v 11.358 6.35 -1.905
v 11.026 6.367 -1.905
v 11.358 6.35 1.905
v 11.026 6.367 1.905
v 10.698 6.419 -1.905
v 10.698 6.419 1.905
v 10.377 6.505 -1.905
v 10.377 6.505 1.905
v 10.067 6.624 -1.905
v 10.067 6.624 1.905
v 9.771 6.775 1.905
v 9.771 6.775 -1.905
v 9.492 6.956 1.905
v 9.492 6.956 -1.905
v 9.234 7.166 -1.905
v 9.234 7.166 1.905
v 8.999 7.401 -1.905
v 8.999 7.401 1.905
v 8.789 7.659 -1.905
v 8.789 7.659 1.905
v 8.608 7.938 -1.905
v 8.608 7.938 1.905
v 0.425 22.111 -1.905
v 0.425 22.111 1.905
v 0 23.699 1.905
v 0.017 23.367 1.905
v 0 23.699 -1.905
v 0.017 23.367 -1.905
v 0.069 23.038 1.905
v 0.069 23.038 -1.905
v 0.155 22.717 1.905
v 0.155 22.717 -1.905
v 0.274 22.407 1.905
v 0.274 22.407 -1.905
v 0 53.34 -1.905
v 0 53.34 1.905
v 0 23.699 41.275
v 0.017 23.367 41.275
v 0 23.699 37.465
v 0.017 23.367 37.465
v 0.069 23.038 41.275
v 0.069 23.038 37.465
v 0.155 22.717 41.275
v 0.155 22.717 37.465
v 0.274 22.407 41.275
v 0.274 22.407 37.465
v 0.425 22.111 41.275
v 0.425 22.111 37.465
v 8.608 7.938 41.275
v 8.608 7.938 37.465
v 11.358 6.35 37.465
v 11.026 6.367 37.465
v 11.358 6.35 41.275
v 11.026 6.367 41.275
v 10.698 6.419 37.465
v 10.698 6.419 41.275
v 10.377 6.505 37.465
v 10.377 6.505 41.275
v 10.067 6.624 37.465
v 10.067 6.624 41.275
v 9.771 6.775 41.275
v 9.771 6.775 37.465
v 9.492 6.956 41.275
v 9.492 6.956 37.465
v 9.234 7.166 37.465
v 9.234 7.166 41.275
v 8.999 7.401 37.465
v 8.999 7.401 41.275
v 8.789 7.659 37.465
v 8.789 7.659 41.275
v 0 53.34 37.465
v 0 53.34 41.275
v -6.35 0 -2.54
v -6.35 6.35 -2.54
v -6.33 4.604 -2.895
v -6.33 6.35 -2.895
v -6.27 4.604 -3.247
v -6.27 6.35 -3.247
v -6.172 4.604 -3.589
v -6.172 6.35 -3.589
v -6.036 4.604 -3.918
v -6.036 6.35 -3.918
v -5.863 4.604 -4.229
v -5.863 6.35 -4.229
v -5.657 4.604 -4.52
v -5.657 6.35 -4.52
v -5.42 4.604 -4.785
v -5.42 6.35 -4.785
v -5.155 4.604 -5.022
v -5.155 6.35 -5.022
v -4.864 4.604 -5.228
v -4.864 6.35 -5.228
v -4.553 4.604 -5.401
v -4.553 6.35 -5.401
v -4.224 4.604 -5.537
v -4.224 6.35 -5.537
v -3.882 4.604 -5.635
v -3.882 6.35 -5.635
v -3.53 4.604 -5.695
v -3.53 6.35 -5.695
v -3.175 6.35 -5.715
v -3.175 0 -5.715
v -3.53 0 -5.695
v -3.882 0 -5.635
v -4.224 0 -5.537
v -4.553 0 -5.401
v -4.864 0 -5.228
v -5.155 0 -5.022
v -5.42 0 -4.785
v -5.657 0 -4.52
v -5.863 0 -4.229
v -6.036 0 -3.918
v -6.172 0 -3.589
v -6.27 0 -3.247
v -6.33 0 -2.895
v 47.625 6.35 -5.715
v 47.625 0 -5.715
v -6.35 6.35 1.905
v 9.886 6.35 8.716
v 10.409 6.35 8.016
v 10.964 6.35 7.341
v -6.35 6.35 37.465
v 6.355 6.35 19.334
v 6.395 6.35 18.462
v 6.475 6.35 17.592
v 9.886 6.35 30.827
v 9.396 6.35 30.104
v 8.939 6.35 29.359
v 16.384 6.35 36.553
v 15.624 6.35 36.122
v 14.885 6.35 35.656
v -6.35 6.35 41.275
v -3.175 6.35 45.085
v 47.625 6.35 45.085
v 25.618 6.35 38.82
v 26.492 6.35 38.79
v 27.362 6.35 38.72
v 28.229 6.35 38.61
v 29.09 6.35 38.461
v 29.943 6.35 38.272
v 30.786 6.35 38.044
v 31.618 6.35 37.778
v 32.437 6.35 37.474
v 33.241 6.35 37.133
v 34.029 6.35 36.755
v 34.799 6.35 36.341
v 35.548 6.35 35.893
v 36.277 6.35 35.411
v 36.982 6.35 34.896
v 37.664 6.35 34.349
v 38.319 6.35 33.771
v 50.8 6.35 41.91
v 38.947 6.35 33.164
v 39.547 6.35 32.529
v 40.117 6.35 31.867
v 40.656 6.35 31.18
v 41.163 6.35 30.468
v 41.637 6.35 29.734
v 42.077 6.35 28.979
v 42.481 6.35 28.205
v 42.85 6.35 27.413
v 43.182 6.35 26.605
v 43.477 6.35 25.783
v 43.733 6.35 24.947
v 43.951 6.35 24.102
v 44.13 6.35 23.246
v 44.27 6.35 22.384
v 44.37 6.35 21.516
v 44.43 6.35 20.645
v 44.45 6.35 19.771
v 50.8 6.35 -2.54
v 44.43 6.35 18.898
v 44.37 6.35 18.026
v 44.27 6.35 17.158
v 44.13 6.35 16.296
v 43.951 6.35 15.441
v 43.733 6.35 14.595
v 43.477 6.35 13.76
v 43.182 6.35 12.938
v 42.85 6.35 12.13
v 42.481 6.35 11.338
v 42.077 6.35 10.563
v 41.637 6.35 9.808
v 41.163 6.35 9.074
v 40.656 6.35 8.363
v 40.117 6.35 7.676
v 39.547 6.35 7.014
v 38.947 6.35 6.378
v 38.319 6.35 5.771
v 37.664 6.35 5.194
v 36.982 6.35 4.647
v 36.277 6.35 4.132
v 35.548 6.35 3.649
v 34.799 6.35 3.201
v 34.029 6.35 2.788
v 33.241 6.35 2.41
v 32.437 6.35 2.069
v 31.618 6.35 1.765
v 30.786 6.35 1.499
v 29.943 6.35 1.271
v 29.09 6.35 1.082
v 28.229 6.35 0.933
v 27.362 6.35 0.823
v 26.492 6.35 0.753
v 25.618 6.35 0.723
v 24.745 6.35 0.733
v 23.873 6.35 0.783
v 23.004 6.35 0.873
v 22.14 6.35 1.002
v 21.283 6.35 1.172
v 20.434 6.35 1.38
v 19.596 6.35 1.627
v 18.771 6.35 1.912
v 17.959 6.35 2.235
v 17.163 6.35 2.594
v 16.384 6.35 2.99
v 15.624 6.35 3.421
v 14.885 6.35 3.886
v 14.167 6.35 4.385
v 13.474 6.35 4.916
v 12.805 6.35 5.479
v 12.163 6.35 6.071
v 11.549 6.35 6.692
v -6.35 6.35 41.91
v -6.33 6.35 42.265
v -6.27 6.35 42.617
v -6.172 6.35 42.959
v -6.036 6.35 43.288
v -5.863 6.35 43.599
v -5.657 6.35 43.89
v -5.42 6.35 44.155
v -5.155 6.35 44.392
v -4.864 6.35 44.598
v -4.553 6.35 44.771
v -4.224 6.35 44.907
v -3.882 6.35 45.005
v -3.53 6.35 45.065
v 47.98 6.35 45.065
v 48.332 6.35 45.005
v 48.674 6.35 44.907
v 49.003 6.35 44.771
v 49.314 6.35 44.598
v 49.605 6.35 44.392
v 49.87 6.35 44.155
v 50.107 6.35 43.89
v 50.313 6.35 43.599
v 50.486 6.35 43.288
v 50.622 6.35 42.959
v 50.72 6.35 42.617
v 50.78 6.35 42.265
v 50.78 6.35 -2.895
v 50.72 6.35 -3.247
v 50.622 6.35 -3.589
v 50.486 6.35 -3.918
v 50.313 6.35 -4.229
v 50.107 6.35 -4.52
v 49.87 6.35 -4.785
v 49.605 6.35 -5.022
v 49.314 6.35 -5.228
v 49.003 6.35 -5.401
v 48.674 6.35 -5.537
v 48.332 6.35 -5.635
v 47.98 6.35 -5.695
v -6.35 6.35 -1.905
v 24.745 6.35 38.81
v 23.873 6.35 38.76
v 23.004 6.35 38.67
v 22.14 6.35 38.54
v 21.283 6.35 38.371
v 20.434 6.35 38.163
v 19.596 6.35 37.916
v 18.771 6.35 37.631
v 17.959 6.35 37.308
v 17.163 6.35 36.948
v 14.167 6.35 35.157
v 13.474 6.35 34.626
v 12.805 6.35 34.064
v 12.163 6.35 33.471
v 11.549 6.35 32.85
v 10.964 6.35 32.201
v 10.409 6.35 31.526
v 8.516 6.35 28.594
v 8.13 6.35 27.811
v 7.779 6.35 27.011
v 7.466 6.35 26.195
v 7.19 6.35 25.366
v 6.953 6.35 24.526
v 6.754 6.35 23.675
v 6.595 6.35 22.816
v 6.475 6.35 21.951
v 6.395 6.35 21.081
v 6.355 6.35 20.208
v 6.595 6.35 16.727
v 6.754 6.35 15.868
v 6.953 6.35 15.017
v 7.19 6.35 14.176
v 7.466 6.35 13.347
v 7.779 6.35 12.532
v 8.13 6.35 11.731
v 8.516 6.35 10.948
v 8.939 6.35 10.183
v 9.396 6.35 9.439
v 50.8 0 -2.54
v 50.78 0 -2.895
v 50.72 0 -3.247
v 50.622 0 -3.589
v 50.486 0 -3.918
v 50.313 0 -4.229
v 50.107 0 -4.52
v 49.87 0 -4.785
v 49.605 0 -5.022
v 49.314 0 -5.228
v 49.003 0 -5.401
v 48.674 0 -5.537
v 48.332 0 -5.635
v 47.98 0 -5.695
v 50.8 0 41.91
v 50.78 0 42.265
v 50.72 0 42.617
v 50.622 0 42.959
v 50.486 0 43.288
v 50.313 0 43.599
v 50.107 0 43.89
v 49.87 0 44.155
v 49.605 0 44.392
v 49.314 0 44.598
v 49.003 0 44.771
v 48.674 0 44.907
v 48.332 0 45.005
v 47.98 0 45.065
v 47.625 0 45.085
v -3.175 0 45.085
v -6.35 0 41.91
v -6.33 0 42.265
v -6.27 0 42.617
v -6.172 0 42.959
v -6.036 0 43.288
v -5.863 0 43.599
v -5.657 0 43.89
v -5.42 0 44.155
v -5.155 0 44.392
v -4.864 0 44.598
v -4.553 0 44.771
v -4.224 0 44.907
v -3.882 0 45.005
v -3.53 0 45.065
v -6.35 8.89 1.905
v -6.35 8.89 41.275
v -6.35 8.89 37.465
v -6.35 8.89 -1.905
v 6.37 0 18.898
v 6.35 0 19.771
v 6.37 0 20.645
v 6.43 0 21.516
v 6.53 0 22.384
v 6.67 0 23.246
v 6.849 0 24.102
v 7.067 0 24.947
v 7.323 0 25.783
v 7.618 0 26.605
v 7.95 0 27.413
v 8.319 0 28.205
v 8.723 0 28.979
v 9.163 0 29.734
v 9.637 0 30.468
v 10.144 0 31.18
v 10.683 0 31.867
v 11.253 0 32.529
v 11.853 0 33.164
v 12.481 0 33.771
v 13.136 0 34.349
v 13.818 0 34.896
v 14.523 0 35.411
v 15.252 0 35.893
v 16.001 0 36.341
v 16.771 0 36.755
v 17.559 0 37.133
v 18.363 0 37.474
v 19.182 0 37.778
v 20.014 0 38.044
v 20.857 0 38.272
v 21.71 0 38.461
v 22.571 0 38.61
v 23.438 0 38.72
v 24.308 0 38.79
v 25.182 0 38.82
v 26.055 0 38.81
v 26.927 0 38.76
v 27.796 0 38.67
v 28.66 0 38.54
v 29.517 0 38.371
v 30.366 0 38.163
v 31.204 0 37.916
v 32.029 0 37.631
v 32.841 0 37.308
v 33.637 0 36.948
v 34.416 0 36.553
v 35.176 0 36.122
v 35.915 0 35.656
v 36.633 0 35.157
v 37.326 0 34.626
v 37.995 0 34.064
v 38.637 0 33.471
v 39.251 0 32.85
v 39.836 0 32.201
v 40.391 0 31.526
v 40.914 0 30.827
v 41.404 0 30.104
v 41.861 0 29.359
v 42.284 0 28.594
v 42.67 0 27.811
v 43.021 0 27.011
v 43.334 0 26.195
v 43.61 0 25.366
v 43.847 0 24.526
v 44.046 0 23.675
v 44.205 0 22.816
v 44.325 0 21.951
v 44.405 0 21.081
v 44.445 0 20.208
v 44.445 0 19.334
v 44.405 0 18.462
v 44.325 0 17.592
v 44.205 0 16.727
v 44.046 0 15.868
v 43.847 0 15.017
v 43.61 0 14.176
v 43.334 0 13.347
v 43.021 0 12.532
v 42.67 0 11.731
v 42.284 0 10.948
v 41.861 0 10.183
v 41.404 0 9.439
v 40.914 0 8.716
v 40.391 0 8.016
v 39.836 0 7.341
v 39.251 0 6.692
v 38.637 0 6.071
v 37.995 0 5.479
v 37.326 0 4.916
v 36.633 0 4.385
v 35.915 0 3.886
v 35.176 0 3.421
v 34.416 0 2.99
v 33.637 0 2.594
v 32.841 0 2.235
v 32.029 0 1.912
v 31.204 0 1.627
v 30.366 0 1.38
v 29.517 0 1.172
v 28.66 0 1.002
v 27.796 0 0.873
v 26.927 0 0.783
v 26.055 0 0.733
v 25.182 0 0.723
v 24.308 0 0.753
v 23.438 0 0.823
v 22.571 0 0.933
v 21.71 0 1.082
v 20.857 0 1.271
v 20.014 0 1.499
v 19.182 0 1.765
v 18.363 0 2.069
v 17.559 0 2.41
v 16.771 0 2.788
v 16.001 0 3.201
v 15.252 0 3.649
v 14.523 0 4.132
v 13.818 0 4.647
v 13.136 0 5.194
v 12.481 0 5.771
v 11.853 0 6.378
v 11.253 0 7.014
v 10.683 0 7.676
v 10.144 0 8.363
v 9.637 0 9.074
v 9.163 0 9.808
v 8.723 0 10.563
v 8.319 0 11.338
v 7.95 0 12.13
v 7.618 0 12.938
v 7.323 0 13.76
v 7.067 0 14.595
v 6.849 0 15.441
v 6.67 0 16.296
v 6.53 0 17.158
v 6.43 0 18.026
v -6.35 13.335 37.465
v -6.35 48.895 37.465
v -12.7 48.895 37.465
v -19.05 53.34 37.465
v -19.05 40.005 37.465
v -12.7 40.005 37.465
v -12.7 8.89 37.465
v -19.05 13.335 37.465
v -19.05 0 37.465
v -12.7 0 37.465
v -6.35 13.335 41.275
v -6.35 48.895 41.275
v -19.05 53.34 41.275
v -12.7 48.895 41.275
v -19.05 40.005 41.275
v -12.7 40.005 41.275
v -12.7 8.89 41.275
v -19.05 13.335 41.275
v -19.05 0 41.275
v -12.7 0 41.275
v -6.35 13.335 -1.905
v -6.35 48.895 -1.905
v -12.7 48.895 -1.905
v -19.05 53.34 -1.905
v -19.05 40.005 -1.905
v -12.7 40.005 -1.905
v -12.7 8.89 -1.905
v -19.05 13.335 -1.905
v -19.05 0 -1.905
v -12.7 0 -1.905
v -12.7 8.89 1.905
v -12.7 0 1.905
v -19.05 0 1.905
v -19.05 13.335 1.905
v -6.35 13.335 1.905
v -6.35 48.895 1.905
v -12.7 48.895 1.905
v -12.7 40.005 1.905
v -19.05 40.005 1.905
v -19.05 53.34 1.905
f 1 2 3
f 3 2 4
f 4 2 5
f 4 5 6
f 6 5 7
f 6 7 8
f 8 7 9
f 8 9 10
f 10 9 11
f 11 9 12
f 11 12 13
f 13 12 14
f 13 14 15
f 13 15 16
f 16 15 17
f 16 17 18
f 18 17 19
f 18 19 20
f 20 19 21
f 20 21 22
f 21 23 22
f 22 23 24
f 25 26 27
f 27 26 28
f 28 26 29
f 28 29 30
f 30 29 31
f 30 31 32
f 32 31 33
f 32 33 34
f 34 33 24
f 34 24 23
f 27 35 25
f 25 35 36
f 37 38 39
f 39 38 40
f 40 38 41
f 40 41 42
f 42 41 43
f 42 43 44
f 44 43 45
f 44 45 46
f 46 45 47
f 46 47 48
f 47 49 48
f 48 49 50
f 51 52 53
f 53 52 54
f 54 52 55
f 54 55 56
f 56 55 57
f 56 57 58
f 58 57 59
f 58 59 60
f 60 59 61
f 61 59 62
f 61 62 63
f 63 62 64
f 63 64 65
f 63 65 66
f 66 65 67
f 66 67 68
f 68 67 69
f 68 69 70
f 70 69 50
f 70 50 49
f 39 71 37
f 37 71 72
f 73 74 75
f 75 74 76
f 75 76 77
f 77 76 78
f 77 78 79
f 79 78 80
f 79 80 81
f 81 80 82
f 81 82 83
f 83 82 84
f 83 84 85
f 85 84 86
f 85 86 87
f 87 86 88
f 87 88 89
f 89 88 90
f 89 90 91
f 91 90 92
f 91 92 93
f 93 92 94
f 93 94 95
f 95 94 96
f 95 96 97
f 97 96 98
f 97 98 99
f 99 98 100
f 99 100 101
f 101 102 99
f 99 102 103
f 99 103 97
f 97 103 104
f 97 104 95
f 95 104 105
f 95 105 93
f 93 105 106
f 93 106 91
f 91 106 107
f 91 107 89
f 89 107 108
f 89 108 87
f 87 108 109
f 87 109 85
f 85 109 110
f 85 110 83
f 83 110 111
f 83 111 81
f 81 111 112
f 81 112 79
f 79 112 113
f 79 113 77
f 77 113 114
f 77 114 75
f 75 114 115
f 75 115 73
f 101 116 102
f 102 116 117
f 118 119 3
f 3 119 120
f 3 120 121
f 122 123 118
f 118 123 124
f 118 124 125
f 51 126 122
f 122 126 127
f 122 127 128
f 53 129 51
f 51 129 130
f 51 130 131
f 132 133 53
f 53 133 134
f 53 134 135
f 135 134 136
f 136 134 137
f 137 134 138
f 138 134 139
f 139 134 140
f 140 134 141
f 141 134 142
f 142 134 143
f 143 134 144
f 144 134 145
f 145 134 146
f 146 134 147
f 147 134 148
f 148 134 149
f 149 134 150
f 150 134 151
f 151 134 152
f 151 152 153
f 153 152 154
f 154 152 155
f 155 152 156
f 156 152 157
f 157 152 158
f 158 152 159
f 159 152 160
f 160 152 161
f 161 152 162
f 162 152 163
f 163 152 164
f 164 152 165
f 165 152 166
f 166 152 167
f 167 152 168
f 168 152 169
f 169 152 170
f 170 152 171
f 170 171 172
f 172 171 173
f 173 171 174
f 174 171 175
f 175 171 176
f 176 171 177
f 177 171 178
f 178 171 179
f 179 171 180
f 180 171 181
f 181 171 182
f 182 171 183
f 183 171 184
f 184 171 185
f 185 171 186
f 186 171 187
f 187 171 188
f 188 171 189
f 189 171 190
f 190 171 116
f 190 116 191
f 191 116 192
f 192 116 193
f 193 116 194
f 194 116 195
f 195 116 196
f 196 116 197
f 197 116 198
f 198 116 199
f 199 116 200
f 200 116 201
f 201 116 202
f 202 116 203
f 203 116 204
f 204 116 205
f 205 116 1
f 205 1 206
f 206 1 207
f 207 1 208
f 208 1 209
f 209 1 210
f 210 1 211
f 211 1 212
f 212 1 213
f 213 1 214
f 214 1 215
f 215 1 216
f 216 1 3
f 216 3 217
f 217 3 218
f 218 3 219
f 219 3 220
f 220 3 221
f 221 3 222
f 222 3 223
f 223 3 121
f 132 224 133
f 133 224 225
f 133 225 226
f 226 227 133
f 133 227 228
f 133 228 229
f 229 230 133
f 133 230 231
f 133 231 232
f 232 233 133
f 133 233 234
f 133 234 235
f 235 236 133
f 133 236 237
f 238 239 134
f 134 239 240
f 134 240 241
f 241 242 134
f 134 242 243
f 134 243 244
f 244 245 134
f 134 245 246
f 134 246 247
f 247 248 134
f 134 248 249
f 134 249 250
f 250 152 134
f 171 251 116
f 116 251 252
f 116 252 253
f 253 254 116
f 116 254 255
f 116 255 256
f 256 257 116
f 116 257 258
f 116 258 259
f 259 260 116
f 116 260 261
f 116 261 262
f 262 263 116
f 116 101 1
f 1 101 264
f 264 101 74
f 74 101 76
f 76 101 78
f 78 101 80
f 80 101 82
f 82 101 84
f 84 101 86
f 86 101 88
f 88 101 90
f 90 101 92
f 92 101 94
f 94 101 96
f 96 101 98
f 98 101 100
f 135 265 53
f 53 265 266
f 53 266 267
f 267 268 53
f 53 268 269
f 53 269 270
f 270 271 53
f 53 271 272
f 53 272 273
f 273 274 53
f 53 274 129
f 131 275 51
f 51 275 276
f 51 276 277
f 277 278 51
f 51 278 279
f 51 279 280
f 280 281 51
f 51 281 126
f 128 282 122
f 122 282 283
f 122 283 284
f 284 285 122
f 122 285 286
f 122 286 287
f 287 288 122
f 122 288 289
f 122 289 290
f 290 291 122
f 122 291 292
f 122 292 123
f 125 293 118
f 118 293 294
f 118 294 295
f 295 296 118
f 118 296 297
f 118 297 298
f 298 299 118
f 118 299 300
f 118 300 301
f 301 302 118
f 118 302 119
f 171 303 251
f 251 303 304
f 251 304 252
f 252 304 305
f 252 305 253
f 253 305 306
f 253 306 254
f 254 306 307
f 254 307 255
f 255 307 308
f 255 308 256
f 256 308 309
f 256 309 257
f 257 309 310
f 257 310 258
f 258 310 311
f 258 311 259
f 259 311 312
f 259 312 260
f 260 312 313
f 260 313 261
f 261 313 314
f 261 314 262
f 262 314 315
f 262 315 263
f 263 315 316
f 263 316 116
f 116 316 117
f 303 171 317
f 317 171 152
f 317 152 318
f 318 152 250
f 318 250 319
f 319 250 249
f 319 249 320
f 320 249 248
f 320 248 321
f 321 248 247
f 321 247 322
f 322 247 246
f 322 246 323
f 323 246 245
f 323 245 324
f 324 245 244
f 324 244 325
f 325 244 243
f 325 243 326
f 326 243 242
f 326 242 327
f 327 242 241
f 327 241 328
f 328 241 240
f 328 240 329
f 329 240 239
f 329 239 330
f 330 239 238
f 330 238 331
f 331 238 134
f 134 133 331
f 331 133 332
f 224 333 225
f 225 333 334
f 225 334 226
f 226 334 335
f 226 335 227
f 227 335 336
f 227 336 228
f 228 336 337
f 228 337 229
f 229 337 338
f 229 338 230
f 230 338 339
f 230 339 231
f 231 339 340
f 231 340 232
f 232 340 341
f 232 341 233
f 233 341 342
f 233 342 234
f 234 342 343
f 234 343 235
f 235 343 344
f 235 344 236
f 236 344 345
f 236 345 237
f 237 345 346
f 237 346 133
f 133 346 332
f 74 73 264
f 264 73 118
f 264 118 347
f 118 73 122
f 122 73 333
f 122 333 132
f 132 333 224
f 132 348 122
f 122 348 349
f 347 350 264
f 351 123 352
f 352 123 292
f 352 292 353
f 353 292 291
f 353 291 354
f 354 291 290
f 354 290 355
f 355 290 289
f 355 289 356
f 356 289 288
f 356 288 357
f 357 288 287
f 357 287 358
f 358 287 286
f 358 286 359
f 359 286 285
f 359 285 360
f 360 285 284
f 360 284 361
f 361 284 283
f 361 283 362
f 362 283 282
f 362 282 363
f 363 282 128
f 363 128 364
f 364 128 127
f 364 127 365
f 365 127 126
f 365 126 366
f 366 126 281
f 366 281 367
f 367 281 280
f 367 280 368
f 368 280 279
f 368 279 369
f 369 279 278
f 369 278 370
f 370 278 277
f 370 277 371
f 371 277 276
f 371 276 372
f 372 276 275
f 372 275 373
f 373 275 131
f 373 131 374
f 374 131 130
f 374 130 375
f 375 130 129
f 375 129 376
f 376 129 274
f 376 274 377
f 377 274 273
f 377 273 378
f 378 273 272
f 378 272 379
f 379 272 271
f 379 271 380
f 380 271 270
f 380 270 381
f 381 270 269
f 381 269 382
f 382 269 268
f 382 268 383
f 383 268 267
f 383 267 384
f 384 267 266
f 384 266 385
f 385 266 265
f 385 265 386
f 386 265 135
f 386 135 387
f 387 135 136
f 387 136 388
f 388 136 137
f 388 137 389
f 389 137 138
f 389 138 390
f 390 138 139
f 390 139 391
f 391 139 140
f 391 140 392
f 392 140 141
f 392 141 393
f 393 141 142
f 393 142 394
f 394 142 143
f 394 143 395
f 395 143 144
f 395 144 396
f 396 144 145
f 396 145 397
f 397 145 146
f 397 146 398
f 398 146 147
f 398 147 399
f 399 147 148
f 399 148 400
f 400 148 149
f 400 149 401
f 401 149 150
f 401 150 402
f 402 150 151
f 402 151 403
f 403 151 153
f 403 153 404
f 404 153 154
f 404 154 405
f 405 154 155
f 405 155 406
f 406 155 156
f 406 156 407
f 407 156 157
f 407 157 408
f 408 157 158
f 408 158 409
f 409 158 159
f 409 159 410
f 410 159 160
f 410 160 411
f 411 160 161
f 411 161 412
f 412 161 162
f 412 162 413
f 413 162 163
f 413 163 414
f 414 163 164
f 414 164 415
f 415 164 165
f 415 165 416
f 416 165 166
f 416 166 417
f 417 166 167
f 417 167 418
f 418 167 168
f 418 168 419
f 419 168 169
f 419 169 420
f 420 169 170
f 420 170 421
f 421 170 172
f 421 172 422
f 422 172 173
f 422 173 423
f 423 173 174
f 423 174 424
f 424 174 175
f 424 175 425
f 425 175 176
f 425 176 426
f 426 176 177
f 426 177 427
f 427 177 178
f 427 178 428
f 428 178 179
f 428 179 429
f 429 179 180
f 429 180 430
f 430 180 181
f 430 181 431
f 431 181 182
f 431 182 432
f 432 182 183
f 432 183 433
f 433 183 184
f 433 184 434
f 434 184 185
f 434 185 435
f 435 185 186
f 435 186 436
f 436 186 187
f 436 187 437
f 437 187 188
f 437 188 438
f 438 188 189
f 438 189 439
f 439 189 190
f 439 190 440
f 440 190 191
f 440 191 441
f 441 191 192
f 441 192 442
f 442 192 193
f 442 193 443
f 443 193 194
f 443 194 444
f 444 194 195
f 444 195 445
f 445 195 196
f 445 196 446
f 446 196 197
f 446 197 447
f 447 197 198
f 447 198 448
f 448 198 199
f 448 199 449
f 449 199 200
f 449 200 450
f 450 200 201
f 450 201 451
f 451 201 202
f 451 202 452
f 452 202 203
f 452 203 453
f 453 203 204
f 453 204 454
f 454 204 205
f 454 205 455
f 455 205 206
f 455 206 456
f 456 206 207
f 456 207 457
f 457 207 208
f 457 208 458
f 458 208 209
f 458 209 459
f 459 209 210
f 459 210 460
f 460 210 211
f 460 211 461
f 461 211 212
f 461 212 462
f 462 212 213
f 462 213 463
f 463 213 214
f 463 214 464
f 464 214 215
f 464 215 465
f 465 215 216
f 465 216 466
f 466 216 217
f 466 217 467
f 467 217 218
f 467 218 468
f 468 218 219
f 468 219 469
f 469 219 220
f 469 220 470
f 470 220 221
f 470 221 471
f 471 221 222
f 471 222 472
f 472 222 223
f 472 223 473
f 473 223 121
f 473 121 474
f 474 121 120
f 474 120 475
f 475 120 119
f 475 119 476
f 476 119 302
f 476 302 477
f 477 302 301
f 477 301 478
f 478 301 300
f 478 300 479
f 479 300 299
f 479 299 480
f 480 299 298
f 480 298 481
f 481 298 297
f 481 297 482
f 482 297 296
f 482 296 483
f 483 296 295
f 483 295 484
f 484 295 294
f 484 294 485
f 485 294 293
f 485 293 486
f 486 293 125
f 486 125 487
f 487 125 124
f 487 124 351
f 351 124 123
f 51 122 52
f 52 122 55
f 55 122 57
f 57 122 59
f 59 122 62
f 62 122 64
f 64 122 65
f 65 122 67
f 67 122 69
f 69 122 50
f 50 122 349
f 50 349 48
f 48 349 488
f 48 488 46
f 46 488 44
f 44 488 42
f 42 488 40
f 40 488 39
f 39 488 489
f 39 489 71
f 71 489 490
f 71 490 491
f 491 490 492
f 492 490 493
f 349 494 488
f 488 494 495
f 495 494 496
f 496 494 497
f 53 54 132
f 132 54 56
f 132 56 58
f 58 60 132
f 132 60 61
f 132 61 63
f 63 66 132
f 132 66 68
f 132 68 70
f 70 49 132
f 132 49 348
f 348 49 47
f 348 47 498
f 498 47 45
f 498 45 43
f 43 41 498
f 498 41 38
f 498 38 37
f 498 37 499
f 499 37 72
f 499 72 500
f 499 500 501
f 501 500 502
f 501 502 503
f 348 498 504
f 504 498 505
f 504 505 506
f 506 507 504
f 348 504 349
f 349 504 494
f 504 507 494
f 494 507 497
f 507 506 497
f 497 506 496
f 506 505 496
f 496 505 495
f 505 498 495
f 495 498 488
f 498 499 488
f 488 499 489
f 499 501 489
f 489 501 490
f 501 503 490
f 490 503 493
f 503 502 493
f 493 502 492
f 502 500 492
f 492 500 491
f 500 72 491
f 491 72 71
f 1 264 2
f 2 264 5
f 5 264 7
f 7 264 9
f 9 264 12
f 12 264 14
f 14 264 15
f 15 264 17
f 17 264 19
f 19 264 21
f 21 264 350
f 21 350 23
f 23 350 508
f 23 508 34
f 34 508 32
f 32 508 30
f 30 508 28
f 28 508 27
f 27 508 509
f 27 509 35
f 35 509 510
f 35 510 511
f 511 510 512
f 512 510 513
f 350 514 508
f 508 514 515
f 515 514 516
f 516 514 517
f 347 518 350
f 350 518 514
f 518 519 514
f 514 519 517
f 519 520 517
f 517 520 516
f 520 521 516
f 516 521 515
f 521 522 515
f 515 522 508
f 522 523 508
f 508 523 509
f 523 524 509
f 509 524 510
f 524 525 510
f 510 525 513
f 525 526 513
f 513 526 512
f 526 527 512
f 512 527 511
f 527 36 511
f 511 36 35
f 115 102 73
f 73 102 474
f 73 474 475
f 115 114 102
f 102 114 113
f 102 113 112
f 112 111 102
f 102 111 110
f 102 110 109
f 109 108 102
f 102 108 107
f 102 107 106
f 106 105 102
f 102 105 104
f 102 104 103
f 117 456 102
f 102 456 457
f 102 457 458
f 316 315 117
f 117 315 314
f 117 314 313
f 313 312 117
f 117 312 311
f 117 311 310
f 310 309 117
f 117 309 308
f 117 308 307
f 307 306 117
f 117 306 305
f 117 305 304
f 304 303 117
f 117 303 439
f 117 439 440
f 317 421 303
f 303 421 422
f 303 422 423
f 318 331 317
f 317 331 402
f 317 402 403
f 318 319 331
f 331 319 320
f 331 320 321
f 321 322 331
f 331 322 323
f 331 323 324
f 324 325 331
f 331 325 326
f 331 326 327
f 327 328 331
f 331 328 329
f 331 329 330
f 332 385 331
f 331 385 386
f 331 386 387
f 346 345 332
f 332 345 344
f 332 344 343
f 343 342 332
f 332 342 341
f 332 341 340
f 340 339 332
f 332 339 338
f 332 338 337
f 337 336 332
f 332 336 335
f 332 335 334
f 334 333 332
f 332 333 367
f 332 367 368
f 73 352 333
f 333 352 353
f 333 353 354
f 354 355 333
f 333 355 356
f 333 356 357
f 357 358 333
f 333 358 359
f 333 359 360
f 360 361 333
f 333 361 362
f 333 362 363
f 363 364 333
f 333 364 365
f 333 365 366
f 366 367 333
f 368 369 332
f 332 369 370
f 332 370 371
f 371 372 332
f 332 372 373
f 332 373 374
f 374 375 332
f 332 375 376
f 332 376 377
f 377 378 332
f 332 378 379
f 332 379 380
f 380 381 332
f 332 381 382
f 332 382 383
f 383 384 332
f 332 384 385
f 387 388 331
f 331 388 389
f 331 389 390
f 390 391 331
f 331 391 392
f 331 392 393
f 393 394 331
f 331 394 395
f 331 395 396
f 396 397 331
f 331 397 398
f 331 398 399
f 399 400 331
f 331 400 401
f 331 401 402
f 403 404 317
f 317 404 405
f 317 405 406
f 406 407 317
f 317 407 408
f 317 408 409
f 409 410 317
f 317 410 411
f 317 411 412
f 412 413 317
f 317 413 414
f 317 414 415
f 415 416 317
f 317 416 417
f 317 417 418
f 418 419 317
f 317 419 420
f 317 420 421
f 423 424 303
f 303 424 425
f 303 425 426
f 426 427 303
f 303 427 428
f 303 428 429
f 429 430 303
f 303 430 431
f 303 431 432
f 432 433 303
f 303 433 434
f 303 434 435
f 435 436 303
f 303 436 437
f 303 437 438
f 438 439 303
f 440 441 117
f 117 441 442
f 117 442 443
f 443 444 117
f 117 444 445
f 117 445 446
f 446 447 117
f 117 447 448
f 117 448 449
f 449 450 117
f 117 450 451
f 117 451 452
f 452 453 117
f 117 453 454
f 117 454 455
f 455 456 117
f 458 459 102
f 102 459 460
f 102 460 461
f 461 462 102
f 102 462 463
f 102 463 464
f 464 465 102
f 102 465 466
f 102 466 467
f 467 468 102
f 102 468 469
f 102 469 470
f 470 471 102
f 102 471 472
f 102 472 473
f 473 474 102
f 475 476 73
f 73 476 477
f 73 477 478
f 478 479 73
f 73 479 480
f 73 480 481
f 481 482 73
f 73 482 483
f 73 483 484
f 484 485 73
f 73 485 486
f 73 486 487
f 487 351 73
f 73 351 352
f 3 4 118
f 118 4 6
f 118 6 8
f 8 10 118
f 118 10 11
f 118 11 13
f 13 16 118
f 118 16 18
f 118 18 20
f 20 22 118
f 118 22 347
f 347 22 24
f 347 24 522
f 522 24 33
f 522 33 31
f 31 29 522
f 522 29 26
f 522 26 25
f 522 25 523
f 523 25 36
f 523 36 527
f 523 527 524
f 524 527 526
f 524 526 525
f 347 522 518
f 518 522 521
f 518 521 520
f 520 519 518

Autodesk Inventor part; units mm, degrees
ref_plane "YZ Plane" through (0, 0, 0) normal (1, 0, 0) x (0, 1, 0)
ref_plane "XZ Plane" through (0, 0, 0) normal (0, 1, 0) x (-1, 0, 0)
sketch "Sketch1" plane through (0, 0, 0) normal (0, 0, 1) x (1, 0, 0)
  line L0 (0, 6.35) -> (0, 53.34)
  line L1 (0, 53.34) -> (-19.05, 53.34)
  line L2 (-19.05, 53.34) -> (-19.05, 55.245)
  line L3 (-12.7, 48.895) -> (-6.35, 48.895)
  line L4 (-6.35, 48.895) -> (-6.35, 13.335)
  line L5 (-6.35, 13.335) -> (-19.05, 13.335)
  line L6 (-19.05, 13.335) -> (-19.05, 12.7)
  line L7 (-12.7, 8.89) -> (-6.35, 8.89)
  line L8 (-6.35, 8.89) -> (-6.35, 0)
  line L9 (-6.35, 0) -> (0, 0)
  line L10 (-19.05, 55.245) -> (-19.05, 40.005)
  line L11 (-19.05, 40.005) -> (-12.7, 40.005)
  line L12 (-12.7, 40.005) -> (-12.7, 48.895)
  line L13 (-19.05, 12.7) -> (-19.05, 0)
  line L14 (-19.05, 0) -> (-12.7, 0)
  line L15 (-12.7, 0) -> (-12.7, 8.89)
  line L16 (0, 0) -> (0, 6.35)
  point P0 (-19.05, 53.34)
  point P1 (-19.05, 11.43)
  dimension "d1" = 35.56
  dimension "d2" = 4.445
  dimension "d3" = 4.445
  dimension "d4" = 6.35
  dimension "d6" = 6.35
  dimension "d7" = 6.35
  dimension "d13" = 13.335
  dimension "d14" = 13.335
extrude "Extrusion1" add sketch "Sketch1" along normal mid plane 3.81
ref_plane "Work Plane1" through (0, 0, 19.685) normal (0, 0, 1) x (1, 0, 0)
mirror "Mirror1" about plane through (0, 0, 19.685) normal (0, 0, 1) of "Extrusion1"
sketch "Sketch4" plane through (0, 0, 19.685) normal (0, 0, 1) x (1, 0, 0)
  line L0 (-6.35, 8.89) -> (-6.35, 0) projected
  line L1 (-6.35, 0) -> (50.8, 0)
  line L2 (50.8, 0) -> (50.8, 6.35)
  line L3 (50.8, 6.35) -> (-6.35, 6.35)
  line L4 (-6.35, 6.35) -> (-6.35, 0)
  point P0 (0, 0)
  dimension "d23" = 57.15
  dimension "d24" = 6.35
extrude "Extrusion4" add sketch "Sketch4" along normal mid plane 50.8
sketch "Sketch5" plane through (-6.35, 6.35, 45.085) normal (0, 1, 0) x (1, 0, 0)
  line L0 (0, 50.8) -> (57.15, 50.8) construction
  line L1 (6.35, 50.8) -> (6.35, -0.1726) construction
  line L2 (57.15, 50.8) -> (57.15, 0) construction
  line L3 (6.35, 50.8) -> (57.15, 0) construction
  line L4 (6.35, -0.1726) -> (57.15, 50.8) construction
  circle A0 centre (31.75, 25.3137) radius 19.05
  point P0 (6.35, 45.085)
  dimension "d27" = 38.1
extrude "Extrusion5" cut sketch "Sketch5" against normal through all
fillet "Fillet1" radius 3.175 4 edges at (-6.35, 3.175, 45.085) (50.8, 3.175, 45.085) (50.8, 3.175, -5.715) (-6.35, 3.175, -5.715)
ref_plane "Work Plane2" through (0, 0, 19.685) normal (0, 0, 1) x (1, 0, 0)
sketch "Sketch6" plane through (-19.05, 53.34, 41.275) normal (0, 0, 1) x (1, 0, 0)
  line L0 (19.05, 0) -> (19.05, -46.99) projected
  line L1 (66.675, -46.99) -> (15.875, -46.99) projected
  line L2 (19.05, -46.99) -> (19.05, 0) projected
  line L3 (19.05, -30.4922) -> (28.575, -46.99)
  line L4 (28.575, -46.99) -> (19.05, -46.99)
  line L5 (19.05, -46.99) -> (19.05, -30.4922)
  point P0 (19.05, -53.34)
  dimension "d37" = 9.525
  dimension "d38" = 60
extrude "Extrusion6" add sketch "Sketch6" against normal up to surface (3.81 mm away)
fillet "Fillet2" radius 3.175 2 edges at (9.525, 6.35, 39.37) (0, 22.8478, 39.37)
sketch "Sketch7" plane through (0, 0, -1.905) normal (0, 0, -1) x (-1, 0, 0)
  line L0 (0, 53.34) -> (0, 6.35) projected
  line L1 (3.175, 6.35) -> (-47.625, 6.35) projected
  line L2 (0, 6.35) -> (0, 53.34) projected
  line L3 (0, 22.8478) -> (0, 6.35)
  line L4 (0, 6.35) -> (-9.525, 6.35)
  line L5 (-11.3581, 6.35) -> (6.35, 6.35) projected
  line L6 (-9.525, 6.35) -> (0, 22.8478)
  point P0 (0, 0)
  dimension "d42" = 60
  dimension "d43" = 9.525
extrude "Extrusion7" add sketch "Sketch7" against normal up to surface (3.81 mm away)
fillet "Fillet3" radius 3.175 2 edges at (0, 22.8478, 0) (9.525, 6.35, 0)
equation "\"d11\" = width"
equation "\"d15\" = oneHalfSpacing"
equation "\"width\" = 3.81"
equation "\"spacing\" = 39.37"
equation "\"oneHalfSpacing\" = 0.5 * spacing"
properties part number "round_1_5_inchHoleV01"
